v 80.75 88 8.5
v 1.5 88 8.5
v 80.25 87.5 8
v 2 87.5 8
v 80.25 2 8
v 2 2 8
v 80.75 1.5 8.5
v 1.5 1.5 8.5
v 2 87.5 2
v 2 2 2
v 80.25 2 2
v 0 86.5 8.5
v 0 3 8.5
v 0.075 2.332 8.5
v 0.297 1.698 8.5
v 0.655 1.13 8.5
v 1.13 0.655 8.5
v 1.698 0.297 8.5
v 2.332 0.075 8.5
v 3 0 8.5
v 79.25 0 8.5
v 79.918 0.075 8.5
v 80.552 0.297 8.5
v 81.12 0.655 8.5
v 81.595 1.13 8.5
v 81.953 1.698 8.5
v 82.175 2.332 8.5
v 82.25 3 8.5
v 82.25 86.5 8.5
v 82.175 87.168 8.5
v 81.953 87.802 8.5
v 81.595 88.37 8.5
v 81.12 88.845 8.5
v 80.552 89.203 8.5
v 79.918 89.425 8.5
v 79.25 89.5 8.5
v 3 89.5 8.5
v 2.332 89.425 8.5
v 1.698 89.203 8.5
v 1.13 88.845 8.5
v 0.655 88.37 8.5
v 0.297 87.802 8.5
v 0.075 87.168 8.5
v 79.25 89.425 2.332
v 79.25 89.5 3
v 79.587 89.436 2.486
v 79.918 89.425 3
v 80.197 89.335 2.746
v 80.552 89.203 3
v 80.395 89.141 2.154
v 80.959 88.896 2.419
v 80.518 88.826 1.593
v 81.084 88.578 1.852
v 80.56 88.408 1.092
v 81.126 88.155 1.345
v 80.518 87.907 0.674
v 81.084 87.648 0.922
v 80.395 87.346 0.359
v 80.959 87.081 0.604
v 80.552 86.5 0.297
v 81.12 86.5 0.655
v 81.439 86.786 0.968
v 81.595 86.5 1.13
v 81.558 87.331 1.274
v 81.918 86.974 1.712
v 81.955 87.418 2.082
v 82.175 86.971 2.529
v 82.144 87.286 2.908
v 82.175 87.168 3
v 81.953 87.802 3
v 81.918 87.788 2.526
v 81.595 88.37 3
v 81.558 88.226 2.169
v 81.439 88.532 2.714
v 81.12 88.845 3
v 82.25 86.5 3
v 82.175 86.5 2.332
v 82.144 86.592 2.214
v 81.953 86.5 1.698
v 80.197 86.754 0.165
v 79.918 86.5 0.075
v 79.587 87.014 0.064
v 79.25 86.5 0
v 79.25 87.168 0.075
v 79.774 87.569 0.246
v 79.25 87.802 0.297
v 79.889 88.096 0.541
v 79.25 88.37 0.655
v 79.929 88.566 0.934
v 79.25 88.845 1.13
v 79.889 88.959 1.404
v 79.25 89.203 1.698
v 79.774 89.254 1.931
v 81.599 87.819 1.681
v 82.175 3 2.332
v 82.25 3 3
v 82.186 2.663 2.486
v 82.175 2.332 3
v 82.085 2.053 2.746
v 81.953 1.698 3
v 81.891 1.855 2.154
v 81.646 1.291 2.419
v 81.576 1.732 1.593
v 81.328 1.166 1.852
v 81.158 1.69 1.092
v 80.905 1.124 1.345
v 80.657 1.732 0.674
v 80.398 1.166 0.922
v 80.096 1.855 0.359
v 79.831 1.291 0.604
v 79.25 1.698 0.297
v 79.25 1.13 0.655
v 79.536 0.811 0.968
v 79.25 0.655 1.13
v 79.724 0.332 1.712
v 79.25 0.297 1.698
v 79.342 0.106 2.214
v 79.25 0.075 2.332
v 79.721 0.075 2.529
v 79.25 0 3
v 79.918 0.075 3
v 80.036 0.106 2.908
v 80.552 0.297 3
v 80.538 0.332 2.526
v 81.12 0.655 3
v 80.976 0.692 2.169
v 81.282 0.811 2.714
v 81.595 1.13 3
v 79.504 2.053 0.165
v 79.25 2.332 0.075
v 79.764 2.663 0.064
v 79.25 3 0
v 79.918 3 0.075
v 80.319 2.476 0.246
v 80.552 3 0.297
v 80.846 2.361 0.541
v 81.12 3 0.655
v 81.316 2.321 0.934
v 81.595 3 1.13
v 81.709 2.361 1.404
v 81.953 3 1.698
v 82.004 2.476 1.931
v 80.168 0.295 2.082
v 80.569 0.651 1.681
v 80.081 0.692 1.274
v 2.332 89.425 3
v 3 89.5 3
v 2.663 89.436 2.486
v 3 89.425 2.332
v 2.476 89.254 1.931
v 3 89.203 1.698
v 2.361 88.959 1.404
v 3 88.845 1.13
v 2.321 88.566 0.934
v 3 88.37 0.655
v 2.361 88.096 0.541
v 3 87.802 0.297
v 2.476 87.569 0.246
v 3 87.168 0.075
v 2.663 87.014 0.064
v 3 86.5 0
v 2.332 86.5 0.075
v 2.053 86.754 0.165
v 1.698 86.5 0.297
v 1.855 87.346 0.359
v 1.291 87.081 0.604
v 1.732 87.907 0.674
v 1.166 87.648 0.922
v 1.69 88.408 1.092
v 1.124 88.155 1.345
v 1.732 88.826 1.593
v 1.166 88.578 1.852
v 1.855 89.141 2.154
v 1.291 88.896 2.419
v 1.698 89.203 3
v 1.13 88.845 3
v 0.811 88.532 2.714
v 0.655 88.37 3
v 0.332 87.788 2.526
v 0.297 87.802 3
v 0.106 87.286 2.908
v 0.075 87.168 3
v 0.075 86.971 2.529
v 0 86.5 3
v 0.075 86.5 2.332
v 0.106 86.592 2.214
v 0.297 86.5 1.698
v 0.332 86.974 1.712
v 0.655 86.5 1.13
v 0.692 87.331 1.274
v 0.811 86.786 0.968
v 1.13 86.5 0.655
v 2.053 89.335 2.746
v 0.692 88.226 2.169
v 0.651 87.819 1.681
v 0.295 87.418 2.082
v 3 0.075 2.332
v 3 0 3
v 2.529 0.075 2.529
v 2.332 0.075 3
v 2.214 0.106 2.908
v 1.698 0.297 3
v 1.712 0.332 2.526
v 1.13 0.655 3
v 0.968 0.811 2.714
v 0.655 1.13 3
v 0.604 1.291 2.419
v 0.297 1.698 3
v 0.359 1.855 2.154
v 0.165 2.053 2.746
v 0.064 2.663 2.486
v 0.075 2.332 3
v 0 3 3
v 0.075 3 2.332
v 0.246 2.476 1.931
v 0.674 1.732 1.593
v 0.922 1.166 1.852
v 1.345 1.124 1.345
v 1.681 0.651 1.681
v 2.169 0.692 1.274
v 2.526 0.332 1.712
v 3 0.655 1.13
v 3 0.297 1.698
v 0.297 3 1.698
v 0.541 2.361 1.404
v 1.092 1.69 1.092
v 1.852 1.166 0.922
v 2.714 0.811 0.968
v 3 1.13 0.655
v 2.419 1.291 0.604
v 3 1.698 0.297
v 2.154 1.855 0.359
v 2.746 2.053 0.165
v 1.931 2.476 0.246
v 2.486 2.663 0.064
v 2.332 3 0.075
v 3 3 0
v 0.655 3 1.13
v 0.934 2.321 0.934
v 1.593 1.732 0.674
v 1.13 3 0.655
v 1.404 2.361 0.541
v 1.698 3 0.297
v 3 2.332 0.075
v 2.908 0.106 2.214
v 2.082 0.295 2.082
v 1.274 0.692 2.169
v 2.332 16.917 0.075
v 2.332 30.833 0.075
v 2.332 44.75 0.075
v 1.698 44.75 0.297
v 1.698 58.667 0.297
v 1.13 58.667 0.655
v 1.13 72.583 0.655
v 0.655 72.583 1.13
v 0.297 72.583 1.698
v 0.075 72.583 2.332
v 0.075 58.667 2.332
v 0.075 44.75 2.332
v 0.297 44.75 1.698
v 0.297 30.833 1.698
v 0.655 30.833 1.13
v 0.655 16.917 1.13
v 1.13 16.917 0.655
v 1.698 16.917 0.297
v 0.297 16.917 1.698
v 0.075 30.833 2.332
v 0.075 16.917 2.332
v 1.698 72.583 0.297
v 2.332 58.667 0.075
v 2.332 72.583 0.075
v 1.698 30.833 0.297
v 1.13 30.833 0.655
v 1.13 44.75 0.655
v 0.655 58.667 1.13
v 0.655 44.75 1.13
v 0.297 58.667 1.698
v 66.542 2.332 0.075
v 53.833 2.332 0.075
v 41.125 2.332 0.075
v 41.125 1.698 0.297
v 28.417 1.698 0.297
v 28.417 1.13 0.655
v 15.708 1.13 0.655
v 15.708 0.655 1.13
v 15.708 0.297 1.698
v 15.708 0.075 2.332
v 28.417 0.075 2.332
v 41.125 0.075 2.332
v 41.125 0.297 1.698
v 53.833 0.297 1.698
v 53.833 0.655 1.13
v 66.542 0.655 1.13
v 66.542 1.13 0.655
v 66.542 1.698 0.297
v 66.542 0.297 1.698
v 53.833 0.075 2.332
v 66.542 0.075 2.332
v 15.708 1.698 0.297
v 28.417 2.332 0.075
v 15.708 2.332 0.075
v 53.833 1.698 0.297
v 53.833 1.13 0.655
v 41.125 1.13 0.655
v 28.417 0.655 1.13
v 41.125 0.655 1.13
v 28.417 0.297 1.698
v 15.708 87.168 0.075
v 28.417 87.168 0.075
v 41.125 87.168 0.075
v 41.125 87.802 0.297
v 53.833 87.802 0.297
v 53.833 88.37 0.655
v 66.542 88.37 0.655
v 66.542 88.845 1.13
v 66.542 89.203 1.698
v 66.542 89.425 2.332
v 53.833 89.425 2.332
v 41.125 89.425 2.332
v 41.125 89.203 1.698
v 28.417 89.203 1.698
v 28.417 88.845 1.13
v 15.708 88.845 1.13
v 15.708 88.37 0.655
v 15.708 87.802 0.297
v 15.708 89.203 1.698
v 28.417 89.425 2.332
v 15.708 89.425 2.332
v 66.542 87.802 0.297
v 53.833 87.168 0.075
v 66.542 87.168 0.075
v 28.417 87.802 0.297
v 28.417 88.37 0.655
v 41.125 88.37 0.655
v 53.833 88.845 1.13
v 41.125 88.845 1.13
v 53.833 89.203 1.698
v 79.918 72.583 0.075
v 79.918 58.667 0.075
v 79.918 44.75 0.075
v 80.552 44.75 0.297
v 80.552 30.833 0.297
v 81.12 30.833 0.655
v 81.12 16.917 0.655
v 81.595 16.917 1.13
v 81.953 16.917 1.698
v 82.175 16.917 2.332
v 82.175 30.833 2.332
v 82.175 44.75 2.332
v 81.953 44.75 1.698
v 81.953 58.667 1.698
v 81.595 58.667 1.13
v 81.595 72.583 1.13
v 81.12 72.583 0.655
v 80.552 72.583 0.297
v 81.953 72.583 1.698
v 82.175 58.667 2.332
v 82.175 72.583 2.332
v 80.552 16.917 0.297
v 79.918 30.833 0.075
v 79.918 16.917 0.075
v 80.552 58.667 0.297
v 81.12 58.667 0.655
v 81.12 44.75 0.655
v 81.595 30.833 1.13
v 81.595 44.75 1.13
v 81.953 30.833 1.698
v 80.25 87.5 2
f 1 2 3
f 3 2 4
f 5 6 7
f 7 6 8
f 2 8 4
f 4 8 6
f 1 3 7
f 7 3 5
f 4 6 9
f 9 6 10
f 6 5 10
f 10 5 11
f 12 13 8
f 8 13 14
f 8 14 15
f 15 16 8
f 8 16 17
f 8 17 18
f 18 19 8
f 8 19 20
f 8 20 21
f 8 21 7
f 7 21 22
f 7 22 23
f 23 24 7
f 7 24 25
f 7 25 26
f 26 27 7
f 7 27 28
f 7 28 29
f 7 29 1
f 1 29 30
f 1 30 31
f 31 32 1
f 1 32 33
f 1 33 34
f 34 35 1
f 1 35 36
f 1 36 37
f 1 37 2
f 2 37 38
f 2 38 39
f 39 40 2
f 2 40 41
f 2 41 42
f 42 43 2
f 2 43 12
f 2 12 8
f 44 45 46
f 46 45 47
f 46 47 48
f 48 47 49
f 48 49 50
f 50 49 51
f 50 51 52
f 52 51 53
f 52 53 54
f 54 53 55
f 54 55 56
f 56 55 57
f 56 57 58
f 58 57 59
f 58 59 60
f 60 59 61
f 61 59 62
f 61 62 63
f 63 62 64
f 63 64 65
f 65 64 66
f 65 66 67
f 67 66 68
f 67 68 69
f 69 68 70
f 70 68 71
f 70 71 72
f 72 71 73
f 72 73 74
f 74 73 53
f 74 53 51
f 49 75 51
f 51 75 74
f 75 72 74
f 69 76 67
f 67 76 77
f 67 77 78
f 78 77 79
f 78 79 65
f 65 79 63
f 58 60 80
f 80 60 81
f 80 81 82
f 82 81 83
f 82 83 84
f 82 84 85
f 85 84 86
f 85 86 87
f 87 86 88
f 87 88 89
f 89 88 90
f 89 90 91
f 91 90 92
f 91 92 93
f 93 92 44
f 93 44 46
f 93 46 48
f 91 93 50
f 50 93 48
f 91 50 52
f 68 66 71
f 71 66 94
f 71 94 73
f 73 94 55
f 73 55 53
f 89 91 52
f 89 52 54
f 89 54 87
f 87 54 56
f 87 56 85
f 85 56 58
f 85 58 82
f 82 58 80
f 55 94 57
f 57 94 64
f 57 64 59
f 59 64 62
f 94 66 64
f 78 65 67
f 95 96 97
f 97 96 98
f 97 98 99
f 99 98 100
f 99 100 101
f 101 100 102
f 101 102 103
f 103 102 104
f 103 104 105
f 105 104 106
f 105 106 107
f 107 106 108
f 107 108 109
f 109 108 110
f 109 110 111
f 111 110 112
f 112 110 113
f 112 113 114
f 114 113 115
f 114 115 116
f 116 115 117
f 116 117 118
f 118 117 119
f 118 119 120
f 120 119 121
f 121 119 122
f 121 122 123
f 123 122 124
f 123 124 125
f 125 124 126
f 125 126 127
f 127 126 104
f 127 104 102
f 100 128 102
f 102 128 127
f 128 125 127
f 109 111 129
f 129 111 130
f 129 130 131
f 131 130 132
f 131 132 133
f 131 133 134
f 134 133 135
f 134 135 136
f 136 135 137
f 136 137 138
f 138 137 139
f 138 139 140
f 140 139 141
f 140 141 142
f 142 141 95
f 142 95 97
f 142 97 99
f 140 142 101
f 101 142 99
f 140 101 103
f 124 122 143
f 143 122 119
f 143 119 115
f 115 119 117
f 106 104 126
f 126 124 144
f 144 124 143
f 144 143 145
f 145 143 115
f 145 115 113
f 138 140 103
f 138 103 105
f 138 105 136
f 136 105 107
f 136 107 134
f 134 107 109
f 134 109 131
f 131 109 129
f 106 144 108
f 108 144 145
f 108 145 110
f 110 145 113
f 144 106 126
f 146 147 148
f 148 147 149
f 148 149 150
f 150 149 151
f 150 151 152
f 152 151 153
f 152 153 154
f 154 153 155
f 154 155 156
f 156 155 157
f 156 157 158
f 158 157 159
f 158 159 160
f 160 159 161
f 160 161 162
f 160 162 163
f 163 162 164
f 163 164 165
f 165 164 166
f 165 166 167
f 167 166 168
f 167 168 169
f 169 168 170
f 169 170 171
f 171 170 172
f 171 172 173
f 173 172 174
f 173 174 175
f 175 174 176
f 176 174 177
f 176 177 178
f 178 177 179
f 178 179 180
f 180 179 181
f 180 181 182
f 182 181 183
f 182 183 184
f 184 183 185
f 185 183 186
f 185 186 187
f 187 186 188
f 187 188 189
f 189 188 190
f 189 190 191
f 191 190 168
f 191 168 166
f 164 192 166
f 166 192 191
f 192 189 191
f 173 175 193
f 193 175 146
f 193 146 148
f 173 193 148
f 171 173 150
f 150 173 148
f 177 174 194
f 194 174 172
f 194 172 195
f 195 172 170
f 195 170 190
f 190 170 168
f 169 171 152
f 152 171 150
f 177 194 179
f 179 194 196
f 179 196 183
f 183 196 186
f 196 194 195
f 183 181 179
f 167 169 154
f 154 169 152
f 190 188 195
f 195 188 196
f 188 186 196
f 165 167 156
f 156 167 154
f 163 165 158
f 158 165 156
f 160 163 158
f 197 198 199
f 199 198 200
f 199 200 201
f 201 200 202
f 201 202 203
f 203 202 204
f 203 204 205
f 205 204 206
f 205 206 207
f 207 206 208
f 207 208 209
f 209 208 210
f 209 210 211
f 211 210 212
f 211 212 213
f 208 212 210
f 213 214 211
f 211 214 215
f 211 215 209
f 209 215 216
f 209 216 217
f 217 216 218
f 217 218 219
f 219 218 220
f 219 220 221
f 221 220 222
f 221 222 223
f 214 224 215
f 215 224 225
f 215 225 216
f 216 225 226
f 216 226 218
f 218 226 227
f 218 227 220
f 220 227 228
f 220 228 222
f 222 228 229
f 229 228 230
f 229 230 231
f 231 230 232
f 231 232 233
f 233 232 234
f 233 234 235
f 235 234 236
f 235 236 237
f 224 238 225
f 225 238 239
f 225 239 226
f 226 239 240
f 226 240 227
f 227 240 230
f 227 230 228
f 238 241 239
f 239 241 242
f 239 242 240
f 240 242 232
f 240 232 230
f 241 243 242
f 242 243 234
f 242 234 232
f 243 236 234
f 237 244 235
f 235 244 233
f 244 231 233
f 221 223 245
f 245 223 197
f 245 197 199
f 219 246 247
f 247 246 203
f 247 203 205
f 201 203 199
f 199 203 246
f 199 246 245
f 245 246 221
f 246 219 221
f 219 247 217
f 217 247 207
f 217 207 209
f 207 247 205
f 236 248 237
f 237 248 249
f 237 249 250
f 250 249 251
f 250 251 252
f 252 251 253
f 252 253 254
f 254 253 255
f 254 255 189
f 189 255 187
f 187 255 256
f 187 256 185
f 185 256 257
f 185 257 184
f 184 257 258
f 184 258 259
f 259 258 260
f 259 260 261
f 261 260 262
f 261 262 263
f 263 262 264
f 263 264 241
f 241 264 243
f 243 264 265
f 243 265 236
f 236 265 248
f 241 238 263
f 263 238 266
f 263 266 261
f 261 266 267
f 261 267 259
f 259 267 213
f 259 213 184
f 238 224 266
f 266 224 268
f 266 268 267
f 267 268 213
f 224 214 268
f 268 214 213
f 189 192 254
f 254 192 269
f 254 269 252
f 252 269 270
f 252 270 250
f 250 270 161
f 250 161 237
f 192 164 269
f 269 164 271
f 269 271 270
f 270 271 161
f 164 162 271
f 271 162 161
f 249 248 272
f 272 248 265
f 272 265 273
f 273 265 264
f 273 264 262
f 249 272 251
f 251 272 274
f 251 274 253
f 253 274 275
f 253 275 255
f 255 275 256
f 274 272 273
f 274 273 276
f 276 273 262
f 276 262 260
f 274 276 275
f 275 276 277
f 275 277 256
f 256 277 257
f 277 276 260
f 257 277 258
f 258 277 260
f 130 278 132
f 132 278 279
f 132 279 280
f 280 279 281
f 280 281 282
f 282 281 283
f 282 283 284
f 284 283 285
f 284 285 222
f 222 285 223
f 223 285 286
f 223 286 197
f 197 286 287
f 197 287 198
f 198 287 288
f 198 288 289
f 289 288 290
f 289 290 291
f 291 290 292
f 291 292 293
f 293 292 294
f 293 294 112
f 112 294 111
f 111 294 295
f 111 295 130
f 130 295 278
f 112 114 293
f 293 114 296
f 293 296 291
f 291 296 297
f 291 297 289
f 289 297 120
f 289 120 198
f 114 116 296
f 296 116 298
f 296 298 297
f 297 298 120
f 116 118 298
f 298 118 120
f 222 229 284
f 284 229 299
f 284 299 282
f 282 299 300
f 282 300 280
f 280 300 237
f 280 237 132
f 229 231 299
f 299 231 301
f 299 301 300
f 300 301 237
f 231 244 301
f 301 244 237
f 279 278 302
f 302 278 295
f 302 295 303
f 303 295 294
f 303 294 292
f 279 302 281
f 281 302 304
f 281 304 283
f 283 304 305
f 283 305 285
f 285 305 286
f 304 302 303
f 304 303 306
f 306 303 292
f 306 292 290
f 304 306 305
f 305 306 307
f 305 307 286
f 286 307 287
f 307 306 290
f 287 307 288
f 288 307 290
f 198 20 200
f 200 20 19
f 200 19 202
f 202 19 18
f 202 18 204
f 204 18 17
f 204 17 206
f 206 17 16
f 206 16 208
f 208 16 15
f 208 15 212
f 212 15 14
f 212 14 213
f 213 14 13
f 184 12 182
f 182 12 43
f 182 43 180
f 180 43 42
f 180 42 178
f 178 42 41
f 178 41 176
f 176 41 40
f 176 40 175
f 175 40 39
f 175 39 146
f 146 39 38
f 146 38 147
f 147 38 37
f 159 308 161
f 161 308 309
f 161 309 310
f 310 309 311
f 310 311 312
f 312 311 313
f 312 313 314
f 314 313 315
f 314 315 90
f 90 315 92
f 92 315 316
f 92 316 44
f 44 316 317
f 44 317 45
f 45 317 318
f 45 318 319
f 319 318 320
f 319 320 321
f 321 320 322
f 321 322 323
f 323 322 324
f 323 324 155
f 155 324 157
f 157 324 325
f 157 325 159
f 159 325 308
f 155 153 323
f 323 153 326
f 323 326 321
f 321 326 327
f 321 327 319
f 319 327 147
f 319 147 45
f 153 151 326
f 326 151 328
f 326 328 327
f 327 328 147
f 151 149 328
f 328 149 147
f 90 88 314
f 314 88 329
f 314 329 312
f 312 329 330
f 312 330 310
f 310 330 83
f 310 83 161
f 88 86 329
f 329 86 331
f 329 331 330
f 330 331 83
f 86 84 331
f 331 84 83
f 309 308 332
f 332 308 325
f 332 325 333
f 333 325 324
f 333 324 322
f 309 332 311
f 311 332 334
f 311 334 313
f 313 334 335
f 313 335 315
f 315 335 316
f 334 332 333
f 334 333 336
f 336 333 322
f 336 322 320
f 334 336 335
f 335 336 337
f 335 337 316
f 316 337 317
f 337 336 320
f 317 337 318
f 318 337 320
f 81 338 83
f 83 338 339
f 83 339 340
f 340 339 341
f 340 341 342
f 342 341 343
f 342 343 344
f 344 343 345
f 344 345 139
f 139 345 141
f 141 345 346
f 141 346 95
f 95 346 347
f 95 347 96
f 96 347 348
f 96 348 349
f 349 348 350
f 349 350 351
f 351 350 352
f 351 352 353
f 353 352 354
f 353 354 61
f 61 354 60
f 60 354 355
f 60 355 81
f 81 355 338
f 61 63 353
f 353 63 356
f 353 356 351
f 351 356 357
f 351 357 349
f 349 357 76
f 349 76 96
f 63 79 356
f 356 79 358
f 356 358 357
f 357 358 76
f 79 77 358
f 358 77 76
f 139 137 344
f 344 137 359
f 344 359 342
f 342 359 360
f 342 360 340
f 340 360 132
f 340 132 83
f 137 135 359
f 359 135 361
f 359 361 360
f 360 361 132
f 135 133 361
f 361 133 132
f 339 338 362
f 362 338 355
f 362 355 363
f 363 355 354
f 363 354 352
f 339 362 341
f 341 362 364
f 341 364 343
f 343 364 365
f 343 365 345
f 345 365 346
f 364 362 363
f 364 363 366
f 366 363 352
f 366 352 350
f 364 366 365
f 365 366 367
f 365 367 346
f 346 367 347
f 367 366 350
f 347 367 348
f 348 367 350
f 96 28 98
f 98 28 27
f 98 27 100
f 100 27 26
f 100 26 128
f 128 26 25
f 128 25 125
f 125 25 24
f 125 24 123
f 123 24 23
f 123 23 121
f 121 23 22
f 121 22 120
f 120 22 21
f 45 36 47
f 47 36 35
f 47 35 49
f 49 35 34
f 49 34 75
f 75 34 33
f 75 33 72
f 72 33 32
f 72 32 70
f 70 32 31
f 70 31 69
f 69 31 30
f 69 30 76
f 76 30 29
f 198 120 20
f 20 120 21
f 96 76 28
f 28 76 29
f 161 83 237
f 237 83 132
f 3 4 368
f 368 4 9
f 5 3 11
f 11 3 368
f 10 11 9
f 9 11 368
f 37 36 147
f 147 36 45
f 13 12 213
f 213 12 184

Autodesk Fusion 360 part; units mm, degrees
sketch "Sketch1" plane through (0, 0, 0) normal (0, 0, 1) x (1, 0, 0)
  line L0 (0, 0) -> (82.25, 0)
  line L1 (82.25, 0) -> (82.25, 89.5)
  line L2 (82.25, 89.5) -> (0, 89.5)
  line L3 (0, 89.5) -> (0, 0)
  dimension "d1" = 89.5
  dimension "d2" = 82.25
extrude "Extrude1" add sketch "Sketch1" along normal blind 8.5
shell "Shell1" thickness 2 removed faces 1 at (27.4167, 59.6667, 8.5)
fillet "Fillet1" radius 3 8 edges at (0, 0, 4.25) (82.25, 0, 4.25) (82.25, 89.5, 4.25) (0, 89.5, 4.25) (41.125, 89.5, 0) (0, 44.75, 0) (41.125, 0, 0) (82.25, 44.75, 0)
chamfer "Chamfer1" distance 0.5 angle 45 4 edges at (2, 44.75, 8.5) (41.125, 2, 8.5) (41.125, 87.5, 8.5) (80.25, 44.75, 8.5)
equation "d1 = 85.5 mm + 4 mm"
equation "d2 = 78.25 mm + 4 mm"
equation "d3 = 6.5 mm + 2 mm"
